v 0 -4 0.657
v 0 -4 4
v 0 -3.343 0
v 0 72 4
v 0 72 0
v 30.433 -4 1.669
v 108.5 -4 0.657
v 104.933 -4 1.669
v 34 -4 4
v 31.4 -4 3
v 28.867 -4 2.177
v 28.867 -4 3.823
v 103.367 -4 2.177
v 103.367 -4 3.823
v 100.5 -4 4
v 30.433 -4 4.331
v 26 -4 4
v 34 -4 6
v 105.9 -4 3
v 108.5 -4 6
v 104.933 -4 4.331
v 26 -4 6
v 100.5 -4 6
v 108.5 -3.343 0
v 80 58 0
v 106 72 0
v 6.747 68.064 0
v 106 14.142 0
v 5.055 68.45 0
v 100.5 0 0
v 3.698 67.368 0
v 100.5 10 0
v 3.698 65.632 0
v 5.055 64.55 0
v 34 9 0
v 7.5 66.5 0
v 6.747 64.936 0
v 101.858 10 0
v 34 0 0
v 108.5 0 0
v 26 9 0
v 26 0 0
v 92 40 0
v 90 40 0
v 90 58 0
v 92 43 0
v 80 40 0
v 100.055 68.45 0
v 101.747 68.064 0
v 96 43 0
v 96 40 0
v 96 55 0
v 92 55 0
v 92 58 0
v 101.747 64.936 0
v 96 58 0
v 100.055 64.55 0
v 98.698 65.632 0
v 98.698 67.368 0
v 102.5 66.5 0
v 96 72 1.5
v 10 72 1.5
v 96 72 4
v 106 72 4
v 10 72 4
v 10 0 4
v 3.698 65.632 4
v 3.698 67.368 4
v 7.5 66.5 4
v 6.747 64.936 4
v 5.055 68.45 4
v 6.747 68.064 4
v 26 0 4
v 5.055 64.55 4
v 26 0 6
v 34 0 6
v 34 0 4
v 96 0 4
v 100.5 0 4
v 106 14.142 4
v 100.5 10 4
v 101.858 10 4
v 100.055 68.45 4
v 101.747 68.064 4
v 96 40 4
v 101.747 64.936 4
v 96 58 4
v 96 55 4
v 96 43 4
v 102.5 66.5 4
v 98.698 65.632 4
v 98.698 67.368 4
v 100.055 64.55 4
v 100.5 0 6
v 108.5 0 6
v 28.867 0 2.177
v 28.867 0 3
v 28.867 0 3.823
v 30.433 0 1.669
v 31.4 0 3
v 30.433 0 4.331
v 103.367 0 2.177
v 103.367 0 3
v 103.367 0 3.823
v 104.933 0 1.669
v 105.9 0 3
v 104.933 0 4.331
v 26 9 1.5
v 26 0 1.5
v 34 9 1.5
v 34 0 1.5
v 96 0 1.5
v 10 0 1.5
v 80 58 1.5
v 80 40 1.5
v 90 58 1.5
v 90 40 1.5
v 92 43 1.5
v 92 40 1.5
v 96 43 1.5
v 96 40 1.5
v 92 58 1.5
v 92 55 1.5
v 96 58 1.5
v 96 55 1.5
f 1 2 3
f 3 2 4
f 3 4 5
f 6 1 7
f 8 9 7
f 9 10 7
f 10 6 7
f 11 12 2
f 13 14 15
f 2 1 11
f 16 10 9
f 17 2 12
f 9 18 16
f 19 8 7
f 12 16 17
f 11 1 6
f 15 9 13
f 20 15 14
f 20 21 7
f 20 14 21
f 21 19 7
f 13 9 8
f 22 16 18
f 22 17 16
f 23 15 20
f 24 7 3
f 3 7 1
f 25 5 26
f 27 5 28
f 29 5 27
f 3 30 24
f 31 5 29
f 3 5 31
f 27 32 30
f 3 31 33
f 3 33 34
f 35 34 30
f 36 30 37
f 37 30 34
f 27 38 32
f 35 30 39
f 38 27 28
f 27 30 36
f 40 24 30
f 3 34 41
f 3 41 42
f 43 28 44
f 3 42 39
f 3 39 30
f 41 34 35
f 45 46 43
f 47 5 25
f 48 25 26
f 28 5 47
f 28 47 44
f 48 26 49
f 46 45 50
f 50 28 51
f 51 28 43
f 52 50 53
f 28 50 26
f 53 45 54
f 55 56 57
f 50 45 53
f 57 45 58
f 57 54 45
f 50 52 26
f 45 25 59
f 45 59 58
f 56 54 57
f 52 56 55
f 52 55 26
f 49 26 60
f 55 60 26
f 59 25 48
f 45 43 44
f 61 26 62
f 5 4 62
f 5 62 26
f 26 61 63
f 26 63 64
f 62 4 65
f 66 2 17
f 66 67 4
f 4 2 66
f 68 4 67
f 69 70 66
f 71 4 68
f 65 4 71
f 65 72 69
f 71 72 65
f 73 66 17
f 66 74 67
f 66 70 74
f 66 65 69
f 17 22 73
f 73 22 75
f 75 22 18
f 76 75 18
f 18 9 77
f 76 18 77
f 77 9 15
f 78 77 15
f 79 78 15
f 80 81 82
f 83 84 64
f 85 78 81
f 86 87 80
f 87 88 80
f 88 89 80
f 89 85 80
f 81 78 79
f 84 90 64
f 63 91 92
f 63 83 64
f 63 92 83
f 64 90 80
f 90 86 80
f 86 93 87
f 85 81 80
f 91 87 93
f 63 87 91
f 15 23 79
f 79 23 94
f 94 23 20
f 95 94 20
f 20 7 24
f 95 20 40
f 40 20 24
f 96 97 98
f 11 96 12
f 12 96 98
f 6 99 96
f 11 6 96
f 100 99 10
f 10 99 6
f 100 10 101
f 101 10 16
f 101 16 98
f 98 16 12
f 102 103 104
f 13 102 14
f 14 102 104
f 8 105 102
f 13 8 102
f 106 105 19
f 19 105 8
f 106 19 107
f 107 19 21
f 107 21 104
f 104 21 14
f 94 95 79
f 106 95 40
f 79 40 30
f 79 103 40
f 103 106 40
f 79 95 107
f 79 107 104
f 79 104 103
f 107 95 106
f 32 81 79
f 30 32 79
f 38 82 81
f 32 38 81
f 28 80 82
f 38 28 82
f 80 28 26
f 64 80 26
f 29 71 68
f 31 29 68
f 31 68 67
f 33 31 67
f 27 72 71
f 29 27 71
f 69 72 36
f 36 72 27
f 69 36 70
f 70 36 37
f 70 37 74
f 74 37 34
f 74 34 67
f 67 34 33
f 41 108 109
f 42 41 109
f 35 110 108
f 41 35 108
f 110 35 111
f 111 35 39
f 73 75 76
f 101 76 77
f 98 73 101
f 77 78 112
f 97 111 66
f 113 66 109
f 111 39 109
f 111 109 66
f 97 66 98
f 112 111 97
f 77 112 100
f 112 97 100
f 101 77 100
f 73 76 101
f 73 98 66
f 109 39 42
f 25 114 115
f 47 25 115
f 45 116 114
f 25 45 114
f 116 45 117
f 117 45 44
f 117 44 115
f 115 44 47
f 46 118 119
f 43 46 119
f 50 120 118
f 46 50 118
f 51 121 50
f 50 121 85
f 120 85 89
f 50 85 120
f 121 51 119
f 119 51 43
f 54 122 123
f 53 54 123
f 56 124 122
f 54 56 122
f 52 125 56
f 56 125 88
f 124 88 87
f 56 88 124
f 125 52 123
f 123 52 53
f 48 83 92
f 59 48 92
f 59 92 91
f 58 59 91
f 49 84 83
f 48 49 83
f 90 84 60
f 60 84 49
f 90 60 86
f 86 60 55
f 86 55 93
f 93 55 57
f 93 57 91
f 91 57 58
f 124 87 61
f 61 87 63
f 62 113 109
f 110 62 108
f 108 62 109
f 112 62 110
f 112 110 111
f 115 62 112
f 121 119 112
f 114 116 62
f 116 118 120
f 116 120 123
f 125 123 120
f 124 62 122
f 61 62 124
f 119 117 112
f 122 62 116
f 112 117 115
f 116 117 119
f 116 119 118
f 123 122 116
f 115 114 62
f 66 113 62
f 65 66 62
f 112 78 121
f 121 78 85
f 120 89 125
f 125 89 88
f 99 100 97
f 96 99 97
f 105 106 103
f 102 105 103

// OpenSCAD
difference(){
union(){
cube([106,72,1.5]);
translate([0,0,0])cube([10,72,4]);
translate([96,0,0])cube([10,72,4]);
}


// Vzdalenos der 61mm a 95mm
	translate([5.5,5.5,-1]){
	translate([0,61,0])cylinder(r=2, h=6);
	translate([95,61,0])cylinder(r=2, h=6);
	}
	
	translate([-8+34,0,0])cube([8,9,6]);
	translate([-8+114-5.5,0,0])cube([8,10,6]);
	translate([-8+114+2,2,0])rotate([0,0,45])cube([8,10,6]);
	
	translate([80,40,0])cube([10,18,6]);
	
	translate([92,40,0])cube([4,3,6]);
	translate([92,55,0])cube([4,3,6]);
}

difference(){
union(){
translate([0,-4,0])cube([106,4,4]);
translate([-8+34,-4,0])cube([8,4,6]);
translate([-8+114-5.5,-4,0])cube([8,4,6]);
}

translate([-4,0,0]){
translate([0+34,0,3]) rotate([90,0,0]) cylinder(r=1.4, h=6);
translate([114-5.5,0,3]) rotate([90,0,0]) cylinder(r=1.4, h=6);
}
translate([-8,-4,-5]) rotate([45,0,0]) cube([122,4,4]);
}

module rambo_mini(){
difference(){
// Velikost pcb 106 a 72
cube([106,72,1]);

	// Vzdalenos der 61mm a 95mm
	translate([5.5,5.5,-1]){
	translate([0,0,0])cylinder(r=1.4, h=3);
	translate([0,61,0])cylinder(r=1.4, h=3);
	translate([95,0,0])cylinder(r=1.4, h=3);
	translate([95,61,0])cylinder(r=1.4, h=3);
	}
}
}
